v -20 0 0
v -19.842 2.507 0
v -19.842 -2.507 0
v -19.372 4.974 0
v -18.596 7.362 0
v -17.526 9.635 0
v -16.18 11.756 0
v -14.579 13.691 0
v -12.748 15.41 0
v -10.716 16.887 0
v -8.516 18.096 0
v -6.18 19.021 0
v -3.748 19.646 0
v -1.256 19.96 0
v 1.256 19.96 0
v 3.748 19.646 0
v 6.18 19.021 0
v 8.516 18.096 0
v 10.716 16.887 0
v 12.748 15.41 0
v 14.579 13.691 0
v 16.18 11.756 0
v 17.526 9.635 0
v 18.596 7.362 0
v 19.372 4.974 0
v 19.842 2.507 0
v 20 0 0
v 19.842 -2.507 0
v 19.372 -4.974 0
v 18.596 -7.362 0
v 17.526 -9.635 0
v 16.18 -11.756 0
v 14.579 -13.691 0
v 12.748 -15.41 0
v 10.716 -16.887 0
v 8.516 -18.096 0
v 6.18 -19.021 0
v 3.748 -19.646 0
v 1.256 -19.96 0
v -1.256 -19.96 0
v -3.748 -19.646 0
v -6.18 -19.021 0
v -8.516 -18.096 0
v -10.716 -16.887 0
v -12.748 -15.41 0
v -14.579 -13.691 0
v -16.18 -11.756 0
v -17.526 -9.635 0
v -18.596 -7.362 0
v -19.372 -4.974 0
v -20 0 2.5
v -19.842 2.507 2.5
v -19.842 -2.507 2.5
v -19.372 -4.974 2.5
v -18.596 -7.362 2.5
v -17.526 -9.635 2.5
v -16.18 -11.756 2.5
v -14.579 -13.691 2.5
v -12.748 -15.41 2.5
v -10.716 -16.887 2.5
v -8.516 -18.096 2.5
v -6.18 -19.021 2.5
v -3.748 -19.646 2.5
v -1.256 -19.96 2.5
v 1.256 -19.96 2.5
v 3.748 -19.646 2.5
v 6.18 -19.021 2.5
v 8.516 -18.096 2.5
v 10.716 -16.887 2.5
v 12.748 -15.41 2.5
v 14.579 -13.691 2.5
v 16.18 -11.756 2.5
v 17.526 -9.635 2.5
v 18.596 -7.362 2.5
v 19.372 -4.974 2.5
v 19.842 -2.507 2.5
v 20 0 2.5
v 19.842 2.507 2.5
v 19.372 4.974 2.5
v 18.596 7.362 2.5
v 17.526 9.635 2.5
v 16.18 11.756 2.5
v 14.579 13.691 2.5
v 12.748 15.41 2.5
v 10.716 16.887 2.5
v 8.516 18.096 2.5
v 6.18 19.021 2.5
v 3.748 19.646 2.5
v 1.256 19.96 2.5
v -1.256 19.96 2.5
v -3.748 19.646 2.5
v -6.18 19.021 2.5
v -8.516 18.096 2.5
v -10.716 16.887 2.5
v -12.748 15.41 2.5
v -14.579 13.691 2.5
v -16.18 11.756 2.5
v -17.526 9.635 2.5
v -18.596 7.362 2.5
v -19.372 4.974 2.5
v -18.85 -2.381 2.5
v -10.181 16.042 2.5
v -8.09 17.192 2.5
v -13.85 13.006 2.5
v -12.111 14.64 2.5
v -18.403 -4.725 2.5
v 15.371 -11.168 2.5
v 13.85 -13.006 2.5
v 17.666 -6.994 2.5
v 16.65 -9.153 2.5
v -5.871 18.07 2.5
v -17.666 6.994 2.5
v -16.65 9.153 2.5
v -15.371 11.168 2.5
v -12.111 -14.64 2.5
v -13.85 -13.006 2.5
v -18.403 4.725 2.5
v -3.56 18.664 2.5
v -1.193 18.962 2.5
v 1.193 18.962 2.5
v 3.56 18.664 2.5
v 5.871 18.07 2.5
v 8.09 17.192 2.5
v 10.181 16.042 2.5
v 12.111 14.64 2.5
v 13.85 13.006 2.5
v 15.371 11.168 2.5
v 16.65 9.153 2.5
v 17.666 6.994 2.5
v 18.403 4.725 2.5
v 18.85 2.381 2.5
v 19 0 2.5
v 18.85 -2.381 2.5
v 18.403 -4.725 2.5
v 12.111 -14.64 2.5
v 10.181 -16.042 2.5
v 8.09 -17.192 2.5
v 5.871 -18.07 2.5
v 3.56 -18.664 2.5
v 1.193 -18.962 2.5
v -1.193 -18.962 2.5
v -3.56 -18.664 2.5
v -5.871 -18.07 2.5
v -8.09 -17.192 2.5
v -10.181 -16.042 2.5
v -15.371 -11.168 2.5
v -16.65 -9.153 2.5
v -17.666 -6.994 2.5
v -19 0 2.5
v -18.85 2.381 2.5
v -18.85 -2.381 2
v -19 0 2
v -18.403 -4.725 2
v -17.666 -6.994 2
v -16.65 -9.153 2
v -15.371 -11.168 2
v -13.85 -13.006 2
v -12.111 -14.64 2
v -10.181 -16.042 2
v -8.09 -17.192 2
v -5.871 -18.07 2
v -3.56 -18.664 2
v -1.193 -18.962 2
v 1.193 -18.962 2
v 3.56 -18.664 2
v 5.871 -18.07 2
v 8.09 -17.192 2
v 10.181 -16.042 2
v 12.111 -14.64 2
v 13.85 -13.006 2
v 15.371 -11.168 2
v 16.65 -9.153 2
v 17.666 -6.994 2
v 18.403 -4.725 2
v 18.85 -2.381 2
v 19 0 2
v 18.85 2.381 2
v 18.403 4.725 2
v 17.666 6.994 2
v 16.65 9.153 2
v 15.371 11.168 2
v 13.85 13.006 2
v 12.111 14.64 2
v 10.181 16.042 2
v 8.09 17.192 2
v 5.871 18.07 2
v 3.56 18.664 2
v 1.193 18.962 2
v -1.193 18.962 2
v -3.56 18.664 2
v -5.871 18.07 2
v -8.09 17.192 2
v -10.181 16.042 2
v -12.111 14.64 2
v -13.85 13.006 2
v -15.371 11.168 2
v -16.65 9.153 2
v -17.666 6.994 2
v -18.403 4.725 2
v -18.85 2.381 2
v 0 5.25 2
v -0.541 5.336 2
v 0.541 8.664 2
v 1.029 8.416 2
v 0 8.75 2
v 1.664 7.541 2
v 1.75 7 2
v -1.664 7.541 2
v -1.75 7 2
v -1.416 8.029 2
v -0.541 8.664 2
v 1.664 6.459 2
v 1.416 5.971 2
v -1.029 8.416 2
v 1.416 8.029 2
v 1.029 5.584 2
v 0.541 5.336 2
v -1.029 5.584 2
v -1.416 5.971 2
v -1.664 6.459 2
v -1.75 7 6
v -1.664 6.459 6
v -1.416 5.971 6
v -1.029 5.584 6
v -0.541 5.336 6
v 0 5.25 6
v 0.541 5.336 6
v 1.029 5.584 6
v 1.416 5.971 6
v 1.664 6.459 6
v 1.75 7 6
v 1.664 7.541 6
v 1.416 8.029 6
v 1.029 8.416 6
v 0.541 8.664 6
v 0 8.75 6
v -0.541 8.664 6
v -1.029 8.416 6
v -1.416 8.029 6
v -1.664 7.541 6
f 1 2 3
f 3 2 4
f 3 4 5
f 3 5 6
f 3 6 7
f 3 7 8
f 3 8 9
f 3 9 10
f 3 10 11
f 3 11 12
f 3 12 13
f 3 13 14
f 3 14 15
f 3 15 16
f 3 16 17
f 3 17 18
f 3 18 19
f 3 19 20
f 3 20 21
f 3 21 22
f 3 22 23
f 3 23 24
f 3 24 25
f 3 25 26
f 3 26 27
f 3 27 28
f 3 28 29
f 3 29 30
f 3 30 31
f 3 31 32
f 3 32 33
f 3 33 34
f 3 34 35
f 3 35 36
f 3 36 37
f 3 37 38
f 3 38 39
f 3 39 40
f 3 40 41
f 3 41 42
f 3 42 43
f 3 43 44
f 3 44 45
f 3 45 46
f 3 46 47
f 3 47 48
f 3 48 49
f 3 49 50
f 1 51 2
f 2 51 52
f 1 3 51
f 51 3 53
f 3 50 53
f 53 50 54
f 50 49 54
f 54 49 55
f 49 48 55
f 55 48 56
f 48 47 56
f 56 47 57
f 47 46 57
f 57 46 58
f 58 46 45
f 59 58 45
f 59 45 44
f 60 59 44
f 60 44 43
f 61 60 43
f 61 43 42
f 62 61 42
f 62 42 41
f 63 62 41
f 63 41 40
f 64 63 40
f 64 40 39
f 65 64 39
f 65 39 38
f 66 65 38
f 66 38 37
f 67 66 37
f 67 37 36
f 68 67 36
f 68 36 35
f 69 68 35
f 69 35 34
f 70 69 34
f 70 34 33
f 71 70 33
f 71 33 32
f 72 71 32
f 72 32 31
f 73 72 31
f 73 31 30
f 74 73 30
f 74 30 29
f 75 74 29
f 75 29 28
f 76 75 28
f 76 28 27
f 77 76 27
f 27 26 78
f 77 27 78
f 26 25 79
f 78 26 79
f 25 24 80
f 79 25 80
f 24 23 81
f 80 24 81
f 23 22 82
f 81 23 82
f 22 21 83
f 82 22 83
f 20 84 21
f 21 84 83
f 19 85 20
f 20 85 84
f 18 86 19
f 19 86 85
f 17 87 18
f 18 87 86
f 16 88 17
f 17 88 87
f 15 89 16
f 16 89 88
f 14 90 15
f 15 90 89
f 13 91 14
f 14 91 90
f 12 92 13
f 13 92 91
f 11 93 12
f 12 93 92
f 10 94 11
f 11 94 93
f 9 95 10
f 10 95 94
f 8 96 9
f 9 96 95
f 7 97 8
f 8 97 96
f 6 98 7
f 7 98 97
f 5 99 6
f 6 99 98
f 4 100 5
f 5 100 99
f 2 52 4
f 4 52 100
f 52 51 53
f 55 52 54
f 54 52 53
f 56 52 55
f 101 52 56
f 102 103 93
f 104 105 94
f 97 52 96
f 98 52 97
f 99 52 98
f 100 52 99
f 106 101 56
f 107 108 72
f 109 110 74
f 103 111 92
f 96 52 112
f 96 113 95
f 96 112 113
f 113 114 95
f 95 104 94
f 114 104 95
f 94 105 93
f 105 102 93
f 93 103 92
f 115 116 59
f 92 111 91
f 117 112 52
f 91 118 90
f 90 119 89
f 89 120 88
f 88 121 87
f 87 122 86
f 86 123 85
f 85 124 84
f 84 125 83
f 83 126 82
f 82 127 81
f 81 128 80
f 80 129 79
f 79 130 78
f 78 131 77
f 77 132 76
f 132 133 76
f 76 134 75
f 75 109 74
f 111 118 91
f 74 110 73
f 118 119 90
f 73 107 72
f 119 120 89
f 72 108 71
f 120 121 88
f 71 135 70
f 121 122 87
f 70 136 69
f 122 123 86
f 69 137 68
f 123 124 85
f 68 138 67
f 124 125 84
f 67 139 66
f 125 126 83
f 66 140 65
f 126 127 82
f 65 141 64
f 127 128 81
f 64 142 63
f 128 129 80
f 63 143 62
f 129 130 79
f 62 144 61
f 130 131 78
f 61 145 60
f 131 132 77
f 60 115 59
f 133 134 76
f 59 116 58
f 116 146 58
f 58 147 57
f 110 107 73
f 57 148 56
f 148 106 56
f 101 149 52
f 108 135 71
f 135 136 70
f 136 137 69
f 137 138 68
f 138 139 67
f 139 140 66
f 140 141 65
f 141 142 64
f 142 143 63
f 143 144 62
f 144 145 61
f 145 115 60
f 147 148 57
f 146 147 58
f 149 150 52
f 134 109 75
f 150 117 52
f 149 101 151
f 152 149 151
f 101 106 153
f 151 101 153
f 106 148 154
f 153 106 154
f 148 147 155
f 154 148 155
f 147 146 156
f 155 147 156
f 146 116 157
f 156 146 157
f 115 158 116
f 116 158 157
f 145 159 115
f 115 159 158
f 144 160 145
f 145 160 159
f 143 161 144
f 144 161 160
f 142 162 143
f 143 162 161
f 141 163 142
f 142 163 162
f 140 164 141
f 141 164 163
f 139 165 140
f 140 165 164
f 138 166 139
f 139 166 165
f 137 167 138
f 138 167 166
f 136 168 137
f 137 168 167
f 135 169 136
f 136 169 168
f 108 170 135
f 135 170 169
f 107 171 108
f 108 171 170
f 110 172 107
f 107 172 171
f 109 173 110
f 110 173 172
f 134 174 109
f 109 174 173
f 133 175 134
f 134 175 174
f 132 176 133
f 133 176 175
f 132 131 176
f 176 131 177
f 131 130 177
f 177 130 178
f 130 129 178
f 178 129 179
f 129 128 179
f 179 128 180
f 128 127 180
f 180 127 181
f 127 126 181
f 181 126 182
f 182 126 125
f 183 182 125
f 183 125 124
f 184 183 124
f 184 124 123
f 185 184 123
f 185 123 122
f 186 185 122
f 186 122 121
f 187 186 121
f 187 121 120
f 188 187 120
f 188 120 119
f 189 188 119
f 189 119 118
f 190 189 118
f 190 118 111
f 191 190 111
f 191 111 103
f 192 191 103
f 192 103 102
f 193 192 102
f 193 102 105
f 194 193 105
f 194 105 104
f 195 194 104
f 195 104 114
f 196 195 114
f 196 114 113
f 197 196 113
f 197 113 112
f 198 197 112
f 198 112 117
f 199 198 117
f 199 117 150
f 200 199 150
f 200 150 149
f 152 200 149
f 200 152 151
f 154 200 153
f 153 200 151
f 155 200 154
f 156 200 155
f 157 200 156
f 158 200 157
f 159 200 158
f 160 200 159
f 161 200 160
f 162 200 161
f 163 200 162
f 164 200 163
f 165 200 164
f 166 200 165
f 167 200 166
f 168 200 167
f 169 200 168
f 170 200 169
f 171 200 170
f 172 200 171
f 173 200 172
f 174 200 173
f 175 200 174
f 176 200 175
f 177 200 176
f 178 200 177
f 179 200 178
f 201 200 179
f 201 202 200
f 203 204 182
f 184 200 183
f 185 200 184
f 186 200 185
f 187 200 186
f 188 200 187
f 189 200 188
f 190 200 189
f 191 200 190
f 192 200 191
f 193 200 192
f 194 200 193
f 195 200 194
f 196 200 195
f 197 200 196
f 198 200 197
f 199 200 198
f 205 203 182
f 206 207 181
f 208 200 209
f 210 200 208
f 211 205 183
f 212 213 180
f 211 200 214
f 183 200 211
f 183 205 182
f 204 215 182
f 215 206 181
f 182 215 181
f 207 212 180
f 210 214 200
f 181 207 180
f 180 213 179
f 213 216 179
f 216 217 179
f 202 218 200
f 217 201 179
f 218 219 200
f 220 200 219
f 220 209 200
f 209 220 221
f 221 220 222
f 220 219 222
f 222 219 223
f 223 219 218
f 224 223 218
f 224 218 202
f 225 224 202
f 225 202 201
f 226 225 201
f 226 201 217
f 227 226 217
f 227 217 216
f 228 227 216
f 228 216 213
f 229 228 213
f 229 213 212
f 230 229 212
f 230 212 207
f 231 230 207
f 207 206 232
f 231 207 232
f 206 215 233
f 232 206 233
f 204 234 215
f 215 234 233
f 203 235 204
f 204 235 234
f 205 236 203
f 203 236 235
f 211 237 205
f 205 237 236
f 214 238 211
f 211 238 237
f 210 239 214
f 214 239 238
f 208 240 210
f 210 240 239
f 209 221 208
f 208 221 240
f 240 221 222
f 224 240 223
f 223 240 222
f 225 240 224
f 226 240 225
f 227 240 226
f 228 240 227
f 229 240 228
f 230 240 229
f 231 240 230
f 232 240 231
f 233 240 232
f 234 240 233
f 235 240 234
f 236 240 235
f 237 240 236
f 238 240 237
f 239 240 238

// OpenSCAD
// A simple stand for miniature figurines 

baseDiameter = 40;
pegDiameter = 3.5;
pegOffset = 7;
pegHeight = 4;
baseThickness = 2;

resolution = 10;

translate([0,0,baseThickness/2]){
	cylinder(r=baseDiameter/2, h=baseThickness, center=true, $fn=50);
	translate([0,0,.5])
	difference() {
		cylinder(r=baseDiameter/2, h=baseThickness, center=true, $fn=50);
		cylinder(r=baseDiameter/2-1, h=baseThickness+1, center=true, $fn=50);
	}
	translate([0,pegOffset,pegHeight/2 + baseThickness/2]) {
		cylinder(r=pegDiameter/2, h=pegHeight, center=true, $fn=20);
	}
}
